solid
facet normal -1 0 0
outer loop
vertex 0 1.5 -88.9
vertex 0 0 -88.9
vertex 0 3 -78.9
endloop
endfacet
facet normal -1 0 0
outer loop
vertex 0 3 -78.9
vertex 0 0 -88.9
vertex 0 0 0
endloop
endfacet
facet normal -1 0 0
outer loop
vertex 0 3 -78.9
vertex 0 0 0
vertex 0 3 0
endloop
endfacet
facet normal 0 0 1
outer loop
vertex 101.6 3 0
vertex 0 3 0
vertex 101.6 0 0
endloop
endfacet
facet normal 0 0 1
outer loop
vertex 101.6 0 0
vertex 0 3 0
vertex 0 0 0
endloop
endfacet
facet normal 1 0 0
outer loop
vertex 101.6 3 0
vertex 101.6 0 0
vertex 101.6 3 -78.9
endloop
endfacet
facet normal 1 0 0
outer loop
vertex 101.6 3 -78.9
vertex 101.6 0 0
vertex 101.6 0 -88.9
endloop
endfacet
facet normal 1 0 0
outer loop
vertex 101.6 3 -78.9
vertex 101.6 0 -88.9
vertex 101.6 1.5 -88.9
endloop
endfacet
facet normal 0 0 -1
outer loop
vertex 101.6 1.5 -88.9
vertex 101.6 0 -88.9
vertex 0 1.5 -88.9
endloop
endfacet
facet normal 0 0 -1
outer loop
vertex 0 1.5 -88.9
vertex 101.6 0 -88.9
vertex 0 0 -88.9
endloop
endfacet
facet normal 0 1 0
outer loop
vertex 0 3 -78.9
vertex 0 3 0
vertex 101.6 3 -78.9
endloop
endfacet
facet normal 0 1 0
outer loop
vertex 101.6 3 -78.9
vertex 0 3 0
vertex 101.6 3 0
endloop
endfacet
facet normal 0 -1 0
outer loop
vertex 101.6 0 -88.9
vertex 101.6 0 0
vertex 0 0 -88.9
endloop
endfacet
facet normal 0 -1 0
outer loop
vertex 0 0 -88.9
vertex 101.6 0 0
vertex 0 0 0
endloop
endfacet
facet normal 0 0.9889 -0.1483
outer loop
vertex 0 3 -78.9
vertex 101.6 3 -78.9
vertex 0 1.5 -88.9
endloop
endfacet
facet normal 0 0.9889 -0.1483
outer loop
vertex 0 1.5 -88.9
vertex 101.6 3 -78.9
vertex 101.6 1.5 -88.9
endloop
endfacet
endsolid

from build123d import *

# Parameters (mm, degrees)
CROQUIS1_W                 = 101.6
CROQUIS1_H                 = 88.9
SALIENTE_EXTRUIR1_DEPTH    = 3
CORTAR_EXTRUIR1_DEPTH      = 136.036180337
CORTAR_EXTRUIR1_DEPTH_BACK = 136.036180337


with BuildPart() as part:
    # Croquis1 → Saliente-Extruir1 (new body)
    with BuildSketch(Plane(origin=(0, 0, 0), x_dir=(1, 0, 0), z_dir=(0, 1, 0))):
        with Locations((50.8, 44.45)):
            Rectangle(CROQUIS1_W, CROQUIS1_H)
    extrude(amount=SALIENTE_EXTRUIR1_DEPTH)

    # Croquis2 → Cortar-Extruir1 (cut, two sides: drawn at the far end of the back side and taken through both)
    with BuildSketch(Plane(origin=(101.6, 0, 0), x_dir=(0, 0, -1), z_dir=(1, 0, 0)).offset(-CORTAR_EXTRUIR1_DEPTH_BACK)):
        Polygon((88.9, 3), (88.9, 1.5), (78.9, 3), (78.9, 5.806097786), (88.9, 5.806097786), align=None)
    extrude(amount=CORTAR_EXTRUIR1_DEPTH + CORTAR_EXTRUIR1_DEPTH_BACK, mode=Mode.SUBTRACT)


solid = part.part
